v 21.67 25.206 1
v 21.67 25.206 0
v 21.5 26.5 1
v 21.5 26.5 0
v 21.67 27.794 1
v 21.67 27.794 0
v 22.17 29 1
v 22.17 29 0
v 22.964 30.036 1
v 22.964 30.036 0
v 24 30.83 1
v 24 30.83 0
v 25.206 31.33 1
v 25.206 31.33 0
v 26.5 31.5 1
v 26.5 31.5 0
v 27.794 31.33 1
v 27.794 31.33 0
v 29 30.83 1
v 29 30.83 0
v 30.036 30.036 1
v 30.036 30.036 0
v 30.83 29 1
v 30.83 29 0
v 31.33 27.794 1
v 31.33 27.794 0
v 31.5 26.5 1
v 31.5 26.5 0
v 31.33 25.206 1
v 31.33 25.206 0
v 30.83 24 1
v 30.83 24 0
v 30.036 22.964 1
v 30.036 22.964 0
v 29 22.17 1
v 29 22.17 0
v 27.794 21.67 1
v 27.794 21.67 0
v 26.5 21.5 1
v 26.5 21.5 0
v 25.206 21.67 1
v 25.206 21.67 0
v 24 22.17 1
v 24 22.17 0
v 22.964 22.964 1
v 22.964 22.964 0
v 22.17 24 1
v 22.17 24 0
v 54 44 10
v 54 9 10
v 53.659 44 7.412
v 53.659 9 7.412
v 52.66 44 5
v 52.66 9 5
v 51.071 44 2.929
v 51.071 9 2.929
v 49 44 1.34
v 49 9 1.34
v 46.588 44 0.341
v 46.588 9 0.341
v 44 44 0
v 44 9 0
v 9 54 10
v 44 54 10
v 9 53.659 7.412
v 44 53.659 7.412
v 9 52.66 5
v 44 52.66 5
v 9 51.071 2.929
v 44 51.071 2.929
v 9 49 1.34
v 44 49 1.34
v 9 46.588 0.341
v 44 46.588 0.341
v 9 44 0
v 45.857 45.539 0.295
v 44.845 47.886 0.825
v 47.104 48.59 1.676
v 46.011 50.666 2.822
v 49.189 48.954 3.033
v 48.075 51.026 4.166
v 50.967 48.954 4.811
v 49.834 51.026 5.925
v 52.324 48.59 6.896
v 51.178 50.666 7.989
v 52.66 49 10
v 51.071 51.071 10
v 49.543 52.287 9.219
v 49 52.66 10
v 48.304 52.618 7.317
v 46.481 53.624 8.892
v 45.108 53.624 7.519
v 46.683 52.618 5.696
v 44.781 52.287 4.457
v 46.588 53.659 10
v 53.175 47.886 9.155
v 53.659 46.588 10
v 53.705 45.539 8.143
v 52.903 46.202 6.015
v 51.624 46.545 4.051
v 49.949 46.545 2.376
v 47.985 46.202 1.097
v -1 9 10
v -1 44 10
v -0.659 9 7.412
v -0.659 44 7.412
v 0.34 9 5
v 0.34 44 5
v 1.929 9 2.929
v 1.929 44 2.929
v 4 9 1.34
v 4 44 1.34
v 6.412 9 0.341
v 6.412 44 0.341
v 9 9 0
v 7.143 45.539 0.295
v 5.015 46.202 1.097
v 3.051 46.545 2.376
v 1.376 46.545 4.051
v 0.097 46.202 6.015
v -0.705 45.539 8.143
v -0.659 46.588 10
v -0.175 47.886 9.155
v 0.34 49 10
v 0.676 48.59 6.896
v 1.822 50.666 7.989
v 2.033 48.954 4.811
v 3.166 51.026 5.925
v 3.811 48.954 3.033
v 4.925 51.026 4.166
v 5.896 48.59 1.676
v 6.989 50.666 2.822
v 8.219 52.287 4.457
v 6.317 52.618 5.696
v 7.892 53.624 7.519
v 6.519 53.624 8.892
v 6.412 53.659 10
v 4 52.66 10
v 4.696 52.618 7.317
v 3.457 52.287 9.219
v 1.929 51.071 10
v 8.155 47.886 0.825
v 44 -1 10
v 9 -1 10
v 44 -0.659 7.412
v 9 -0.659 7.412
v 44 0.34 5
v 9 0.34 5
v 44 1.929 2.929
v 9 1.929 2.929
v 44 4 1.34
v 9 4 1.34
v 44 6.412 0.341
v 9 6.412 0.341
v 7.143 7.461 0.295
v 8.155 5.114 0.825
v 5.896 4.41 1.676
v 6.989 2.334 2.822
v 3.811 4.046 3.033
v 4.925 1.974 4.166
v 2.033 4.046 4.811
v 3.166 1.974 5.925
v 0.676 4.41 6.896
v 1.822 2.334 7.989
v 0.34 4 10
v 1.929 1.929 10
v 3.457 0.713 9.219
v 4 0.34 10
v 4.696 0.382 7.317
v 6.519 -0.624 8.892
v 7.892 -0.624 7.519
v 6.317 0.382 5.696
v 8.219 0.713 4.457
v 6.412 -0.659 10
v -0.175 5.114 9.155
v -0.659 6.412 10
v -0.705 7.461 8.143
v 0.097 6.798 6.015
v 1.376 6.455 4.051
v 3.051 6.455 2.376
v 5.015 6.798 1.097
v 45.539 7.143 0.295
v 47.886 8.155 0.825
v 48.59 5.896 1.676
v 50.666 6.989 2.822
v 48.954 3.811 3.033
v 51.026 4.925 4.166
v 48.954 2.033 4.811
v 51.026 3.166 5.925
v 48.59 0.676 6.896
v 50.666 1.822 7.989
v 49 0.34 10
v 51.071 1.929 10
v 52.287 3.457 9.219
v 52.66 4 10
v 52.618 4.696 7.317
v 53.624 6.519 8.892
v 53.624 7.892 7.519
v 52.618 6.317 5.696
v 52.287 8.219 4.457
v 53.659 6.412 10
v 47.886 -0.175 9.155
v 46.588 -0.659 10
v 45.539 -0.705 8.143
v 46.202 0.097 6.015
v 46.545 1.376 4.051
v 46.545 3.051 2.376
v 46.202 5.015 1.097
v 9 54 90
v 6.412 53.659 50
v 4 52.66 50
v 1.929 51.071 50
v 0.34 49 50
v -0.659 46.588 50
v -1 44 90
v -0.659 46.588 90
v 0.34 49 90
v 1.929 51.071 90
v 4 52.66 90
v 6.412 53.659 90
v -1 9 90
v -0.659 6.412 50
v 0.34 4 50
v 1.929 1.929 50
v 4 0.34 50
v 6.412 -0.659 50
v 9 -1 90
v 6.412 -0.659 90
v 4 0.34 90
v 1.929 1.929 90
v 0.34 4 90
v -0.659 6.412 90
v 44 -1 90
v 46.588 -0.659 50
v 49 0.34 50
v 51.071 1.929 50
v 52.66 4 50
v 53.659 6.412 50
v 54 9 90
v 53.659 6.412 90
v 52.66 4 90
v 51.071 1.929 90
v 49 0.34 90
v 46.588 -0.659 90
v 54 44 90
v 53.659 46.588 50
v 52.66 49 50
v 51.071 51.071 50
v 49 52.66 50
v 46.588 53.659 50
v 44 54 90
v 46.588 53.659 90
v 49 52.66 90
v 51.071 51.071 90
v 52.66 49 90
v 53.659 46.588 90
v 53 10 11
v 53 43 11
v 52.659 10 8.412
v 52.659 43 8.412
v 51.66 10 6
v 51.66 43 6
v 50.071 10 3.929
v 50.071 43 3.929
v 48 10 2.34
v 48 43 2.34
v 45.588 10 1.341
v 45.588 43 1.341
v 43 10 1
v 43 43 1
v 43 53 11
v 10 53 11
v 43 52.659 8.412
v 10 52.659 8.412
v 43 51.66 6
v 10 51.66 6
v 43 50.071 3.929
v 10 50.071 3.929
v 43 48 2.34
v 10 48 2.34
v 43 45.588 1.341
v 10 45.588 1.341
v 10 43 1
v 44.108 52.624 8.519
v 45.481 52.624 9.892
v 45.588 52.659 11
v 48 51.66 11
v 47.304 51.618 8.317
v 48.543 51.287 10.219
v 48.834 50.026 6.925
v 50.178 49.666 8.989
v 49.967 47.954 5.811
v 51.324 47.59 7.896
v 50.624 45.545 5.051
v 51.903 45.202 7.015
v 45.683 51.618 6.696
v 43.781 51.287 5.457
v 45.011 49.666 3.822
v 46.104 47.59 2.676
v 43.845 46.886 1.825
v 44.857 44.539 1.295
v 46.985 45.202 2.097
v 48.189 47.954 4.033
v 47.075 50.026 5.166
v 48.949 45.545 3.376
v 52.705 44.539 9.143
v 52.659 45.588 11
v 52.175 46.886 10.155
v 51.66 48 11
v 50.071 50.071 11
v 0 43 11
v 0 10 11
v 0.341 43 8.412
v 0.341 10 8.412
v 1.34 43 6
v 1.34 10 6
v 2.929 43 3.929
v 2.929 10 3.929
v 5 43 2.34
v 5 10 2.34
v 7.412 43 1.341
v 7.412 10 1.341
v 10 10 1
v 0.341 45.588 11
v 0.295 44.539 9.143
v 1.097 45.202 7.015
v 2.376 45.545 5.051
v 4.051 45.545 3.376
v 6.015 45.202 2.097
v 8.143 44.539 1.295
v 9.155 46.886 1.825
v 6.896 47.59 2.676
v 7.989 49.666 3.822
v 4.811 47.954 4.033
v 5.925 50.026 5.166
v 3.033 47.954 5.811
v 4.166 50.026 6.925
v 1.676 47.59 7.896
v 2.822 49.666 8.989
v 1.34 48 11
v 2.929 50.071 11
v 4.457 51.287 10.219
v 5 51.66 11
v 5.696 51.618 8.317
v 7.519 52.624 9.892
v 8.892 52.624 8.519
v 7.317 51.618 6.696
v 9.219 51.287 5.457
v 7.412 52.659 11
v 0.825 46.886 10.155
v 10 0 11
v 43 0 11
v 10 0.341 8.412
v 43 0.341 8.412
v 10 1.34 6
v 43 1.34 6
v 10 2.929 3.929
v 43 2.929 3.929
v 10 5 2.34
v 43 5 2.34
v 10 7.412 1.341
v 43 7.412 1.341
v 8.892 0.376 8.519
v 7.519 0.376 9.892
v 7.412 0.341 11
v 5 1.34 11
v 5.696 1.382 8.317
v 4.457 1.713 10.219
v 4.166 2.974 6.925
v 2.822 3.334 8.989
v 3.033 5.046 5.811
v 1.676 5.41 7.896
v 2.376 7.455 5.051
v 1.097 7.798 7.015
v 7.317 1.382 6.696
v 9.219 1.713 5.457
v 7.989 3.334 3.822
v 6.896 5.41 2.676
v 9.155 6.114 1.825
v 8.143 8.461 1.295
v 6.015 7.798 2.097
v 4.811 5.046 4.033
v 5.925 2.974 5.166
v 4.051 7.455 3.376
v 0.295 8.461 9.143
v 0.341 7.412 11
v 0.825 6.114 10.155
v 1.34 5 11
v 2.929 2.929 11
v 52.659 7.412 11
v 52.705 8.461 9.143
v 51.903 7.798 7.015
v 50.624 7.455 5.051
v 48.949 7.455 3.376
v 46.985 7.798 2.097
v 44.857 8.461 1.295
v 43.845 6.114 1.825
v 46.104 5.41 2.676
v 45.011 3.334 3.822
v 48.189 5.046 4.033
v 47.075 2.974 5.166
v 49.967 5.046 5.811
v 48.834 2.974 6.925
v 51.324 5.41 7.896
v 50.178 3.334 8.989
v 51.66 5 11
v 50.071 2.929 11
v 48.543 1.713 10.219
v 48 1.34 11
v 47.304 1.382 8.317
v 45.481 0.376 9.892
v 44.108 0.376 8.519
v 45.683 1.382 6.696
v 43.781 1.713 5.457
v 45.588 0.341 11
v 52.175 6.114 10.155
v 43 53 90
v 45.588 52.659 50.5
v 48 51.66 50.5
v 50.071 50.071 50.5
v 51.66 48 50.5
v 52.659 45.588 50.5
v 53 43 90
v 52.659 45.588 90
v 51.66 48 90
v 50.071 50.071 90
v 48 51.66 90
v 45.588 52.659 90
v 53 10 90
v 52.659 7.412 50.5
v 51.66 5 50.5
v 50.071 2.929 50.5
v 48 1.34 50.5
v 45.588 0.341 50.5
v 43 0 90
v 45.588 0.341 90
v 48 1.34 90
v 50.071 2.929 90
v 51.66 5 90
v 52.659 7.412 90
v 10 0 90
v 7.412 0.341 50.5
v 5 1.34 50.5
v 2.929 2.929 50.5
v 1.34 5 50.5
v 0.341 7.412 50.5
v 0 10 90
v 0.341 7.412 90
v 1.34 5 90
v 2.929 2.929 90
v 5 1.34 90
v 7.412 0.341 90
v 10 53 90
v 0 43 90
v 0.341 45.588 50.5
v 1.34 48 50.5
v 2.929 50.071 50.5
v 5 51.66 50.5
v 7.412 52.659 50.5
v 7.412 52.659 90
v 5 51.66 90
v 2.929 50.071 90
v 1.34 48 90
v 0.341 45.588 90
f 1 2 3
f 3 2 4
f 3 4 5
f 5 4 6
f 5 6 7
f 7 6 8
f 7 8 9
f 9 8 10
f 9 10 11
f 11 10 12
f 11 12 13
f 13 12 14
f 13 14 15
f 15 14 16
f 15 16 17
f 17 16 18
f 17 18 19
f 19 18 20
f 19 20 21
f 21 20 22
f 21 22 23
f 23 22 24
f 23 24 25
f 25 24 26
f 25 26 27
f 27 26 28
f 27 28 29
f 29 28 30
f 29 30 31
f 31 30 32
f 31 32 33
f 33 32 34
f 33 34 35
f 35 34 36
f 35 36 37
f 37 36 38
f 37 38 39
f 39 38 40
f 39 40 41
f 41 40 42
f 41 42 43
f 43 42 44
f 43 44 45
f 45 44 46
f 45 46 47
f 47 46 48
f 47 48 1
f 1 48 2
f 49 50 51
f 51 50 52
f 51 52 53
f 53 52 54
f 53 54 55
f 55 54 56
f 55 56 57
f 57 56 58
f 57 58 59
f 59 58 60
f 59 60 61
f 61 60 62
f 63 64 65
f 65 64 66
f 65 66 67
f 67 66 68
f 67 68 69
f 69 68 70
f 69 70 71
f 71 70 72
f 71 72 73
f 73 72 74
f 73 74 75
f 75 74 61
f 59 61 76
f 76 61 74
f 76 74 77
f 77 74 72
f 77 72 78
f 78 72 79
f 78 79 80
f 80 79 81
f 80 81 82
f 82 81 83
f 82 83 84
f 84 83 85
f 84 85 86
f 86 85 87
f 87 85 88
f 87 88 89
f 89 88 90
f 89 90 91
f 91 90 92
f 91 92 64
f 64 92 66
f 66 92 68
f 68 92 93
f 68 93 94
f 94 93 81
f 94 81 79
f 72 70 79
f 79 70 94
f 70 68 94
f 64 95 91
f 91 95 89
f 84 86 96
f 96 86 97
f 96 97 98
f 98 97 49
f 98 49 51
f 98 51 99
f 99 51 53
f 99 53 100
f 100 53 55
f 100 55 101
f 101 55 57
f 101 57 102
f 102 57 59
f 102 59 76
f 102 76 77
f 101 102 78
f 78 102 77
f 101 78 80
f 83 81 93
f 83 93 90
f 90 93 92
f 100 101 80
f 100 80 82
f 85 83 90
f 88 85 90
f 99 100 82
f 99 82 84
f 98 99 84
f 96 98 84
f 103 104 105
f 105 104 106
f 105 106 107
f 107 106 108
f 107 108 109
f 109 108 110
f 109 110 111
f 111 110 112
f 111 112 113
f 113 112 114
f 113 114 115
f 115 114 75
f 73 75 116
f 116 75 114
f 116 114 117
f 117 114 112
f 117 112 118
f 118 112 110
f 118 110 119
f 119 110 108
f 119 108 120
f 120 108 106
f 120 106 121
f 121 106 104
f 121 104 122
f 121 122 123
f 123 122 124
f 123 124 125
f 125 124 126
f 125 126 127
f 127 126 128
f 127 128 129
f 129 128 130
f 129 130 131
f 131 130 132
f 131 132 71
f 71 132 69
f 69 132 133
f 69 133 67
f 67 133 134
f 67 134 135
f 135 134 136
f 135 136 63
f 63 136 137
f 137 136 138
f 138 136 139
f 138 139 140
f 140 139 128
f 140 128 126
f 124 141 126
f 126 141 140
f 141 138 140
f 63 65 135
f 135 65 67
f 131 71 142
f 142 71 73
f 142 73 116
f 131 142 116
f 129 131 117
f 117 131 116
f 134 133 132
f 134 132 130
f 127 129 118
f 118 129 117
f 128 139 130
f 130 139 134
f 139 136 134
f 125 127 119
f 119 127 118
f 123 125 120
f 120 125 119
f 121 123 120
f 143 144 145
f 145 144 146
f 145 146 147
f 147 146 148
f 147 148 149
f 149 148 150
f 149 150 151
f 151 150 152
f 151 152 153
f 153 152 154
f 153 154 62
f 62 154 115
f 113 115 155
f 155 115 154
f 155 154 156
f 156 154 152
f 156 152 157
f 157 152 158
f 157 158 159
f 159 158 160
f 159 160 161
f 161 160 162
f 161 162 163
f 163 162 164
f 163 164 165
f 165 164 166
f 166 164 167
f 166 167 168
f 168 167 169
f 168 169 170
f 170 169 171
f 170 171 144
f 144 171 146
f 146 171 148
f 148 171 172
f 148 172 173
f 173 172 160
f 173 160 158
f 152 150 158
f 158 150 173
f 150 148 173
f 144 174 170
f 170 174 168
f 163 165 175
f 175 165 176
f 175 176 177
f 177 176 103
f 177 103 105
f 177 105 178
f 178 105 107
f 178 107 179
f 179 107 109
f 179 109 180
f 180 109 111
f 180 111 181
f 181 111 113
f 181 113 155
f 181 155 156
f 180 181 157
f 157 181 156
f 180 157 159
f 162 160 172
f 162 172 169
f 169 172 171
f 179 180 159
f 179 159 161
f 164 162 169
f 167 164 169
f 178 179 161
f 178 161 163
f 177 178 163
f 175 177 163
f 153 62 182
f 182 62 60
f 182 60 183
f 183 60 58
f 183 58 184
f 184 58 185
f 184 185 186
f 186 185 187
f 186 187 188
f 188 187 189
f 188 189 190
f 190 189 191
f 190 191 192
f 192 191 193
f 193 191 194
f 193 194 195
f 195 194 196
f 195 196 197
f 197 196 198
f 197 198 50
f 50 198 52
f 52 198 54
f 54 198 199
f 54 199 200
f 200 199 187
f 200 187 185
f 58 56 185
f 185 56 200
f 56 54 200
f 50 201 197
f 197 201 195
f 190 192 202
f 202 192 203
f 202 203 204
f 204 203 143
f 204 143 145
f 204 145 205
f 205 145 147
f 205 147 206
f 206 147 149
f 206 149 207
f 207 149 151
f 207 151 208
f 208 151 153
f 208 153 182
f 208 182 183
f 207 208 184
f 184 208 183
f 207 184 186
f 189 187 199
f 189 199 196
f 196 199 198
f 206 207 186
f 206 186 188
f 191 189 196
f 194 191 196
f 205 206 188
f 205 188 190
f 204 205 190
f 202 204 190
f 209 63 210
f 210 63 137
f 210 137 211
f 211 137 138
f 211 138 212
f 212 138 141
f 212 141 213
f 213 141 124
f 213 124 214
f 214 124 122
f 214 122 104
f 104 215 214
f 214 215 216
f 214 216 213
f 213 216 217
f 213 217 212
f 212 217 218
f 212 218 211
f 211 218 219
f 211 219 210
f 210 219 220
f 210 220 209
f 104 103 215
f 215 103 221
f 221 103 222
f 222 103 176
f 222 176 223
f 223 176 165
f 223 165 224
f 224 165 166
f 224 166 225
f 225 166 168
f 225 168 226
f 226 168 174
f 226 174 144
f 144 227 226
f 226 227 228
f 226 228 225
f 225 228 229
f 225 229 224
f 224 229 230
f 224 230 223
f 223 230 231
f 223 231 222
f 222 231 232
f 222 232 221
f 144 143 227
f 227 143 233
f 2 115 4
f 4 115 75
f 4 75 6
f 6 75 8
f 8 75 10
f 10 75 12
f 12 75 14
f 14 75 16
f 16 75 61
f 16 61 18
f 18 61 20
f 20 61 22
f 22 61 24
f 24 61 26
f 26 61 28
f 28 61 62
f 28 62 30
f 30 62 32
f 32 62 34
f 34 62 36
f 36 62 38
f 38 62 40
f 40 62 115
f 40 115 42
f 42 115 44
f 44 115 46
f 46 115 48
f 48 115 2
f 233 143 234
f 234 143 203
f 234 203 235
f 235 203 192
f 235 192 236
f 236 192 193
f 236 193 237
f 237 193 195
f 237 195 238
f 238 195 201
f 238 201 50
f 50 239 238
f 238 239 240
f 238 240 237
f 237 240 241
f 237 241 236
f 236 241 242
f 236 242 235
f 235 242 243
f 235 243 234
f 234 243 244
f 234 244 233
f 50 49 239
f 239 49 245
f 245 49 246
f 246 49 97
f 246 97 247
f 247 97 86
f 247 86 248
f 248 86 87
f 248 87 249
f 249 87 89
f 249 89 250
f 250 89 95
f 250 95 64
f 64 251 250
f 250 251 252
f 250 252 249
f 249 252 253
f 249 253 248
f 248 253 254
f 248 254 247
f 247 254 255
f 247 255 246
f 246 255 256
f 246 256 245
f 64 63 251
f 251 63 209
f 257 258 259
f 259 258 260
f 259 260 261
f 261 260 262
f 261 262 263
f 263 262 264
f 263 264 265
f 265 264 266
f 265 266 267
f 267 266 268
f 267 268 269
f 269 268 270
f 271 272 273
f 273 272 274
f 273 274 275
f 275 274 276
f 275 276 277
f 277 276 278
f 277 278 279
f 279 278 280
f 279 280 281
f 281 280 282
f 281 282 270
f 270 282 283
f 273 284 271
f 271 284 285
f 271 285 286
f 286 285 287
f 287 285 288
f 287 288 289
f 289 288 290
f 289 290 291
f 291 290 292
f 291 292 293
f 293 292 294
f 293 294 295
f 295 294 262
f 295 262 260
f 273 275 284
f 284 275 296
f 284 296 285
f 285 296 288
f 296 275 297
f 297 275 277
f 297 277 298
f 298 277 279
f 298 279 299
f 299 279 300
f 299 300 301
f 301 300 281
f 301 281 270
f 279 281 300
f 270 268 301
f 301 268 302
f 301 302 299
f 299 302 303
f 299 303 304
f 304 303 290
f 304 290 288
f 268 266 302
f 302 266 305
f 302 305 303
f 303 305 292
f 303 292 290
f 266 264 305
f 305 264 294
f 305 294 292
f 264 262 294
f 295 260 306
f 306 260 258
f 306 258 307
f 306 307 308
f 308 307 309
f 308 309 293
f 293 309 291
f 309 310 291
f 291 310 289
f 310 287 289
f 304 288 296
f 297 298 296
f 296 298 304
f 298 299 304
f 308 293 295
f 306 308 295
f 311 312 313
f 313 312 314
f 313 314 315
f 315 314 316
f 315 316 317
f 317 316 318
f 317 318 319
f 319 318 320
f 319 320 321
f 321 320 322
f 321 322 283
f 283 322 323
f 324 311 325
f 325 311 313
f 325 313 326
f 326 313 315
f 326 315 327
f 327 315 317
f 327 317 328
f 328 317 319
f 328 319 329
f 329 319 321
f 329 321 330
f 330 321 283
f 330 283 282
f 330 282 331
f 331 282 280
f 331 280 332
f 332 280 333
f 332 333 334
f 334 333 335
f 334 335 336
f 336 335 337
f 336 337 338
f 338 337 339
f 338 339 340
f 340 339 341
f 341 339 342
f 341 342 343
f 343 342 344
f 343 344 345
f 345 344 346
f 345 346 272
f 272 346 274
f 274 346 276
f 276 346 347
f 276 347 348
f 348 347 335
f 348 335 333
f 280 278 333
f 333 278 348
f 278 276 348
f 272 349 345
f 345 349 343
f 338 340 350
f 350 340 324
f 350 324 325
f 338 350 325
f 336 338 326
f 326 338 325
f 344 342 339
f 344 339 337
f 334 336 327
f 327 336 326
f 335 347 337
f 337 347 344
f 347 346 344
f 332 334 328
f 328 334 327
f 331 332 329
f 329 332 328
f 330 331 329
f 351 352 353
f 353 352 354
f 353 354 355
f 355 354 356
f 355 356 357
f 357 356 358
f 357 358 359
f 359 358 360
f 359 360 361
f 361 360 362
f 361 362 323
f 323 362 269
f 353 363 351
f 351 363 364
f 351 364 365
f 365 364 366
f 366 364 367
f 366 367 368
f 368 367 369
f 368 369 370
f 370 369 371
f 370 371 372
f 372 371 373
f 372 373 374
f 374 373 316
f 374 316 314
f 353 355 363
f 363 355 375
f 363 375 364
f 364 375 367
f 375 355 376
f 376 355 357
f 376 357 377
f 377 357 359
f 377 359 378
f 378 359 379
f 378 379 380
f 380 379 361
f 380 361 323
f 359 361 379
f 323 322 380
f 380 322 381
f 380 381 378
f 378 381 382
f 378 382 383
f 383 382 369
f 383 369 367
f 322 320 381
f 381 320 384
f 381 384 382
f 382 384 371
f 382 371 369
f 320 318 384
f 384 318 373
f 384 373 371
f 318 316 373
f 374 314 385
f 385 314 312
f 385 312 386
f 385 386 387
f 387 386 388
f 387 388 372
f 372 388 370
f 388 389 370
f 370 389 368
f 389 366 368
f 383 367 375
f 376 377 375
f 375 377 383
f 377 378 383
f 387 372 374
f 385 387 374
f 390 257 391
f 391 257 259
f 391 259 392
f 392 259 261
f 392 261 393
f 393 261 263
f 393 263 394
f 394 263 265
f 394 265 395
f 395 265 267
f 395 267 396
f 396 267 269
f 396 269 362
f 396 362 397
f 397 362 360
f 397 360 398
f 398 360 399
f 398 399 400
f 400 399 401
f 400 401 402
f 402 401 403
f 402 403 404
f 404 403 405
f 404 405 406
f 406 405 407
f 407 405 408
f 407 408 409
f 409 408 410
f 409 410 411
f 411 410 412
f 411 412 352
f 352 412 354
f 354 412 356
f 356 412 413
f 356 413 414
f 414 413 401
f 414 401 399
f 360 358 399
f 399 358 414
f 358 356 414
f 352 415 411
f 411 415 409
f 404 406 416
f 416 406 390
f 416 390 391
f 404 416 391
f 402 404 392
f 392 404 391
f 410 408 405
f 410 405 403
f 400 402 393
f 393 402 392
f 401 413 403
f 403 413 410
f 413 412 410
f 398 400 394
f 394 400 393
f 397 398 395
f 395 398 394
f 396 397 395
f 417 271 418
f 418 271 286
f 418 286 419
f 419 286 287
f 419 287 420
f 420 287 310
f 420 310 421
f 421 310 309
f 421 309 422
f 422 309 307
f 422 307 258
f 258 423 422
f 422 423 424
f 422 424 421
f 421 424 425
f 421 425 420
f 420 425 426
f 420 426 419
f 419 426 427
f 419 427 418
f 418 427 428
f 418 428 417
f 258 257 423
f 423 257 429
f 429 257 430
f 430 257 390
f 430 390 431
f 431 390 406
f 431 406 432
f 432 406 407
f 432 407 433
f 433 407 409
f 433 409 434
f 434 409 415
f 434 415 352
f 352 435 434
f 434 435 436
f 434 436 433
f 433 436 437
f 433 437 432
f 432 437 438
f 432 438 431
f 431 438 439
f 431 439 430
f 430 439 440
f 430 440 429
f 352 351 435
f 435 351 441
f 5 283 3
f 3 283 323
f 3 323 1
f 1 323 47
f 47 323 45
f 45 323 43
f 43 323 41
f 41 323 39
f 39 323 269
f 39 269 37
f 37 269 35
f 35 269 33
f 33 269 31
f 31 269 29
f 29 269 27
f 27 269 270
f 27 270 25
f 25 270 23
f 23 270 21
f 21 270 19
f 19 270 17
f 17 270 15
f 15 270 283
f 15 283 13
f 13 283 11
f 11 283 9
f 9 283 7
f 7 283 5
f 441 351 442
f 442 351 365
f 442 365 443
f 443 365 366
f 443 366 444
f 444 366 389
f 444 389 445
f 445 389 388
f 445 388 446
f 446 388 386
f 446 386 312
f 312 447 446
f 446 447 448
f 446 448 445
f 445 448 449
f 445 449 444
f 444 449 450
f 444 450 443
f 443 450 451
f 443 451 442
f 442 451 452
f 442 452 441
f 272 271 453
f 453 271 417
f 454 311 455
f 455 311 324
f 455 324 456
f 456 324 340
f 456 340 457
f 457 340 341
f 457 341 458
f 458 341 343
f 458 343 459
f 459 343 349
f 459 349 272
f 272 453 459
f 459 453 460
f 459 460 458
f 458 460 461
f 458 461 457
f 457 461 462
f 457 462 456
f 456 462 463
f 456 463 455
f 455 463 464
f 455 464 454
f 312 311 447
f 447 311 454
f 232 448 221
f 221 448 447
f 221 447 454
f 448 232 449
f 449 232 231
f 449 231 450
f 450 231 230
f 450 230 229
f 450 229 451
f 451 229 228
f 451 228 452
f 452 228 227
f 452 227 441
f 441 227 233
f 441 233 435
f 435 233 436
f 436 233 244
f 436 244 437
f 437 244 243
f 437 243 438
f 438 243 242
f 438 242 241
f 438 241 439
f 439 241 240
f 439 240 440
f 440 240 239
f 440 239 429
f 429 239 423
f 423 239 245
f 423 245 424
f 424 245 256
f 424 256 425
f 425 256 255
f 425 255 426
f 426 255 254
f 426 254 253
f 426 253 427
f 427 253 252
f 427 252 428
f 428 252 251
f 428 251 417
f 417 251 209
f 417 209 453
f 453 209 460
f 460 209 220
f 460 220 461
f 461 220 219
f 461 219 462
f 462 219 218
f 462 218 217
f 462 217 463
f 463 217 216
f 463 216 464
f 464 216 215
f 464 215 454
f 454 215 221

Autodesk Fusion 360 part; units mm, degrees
sketch "Esquisse1" plane through (0, 0, 0) normal (0, 0, 1) x (1, 0, 0)
  line L0 (0, 0) -> (53, 0)
  line L1 (53, 0) -> (53, 53)
  line L2 (53, 53) -> (0, 53)
  line L3 (0, 53) -> (0, 0)
  line L4 (54, -1) -> (54, 54)
  line L5 (54, 54) -> (-1, 54)
  line L6 (-1, 54) -> (-1, -1)
  line L7 (-1, -1) -> (54, -1)
  line L8 (26.5, 53) -> (26.5, 0)
  circle A0 centre (26.5, 26.5) radius 5
  dimension "d4" = 53
  dimension "d5" = 53
  dimension "d6" = 1
  dimension "d20" = 10
extrude "Extrusion1" add sketch "Esquisse1" along normal blind 90
extrude "Extrusion2" add sketch "Esquisse1" along normal blind 1 contours L0 L2 L3 L8 A0 | L0 L1 L2 L8 A0 | L8 A0 | L8 A0
fillet "Congé1" radius 10 4 edges at (0, 53, 45.5) (53, 53, 45.5) (53, 0, 45.5) (0, 0, 45.5)
fillet "Congé2" radius 10 8 edges at (50.0711, 50.0711, 1) (53, 26.5, 1) (50.0711, 2.9289, 1) (26.5, 0, 1) (2.9289, 2.9289, 1) (0, 26.5, 1) (2.9289, 50.0711, 1) (26.5, 53, 1)
fillet "Congé3" radius 10 4 edges at (-1, 54, 45) (54, 54, 45) (54, -1, 45) (-1, -1, 45)
fillet "Congé4" radius 10 8 edges at (54, 26.5, 0) (51.0711, 51.0711, 0) (26.5, 54, 0) (1.9289, 51.0711, 0) (-1, 26.5, 0) (1.9289, 1.9289, 0) (26.5, -1, 0) (51.0711, 1.9289, 0)
extrude "Extrusion3" cut sketch "Esquisse1" along normal blind 1 contours L8 A0 | L8 A0
equation "base_largeur = 53 mm"
equation "epaisseur = 1 mm"
equation "hauteur = 90 mm"
equation "d4 = base_largeur"
equation "d5 = base_largeur"
equation "d6 = epaisseur"
equation "d7 = hauteur"
equation "d9 = epaisseur"
equation "angle_int = 10 mm"
equation "d13 = angle_int"
equation "d15 = angle_int"
equation "d17 = angle_int"
equation "d19 = angle_int"
equation "d21 = epaisseur"
